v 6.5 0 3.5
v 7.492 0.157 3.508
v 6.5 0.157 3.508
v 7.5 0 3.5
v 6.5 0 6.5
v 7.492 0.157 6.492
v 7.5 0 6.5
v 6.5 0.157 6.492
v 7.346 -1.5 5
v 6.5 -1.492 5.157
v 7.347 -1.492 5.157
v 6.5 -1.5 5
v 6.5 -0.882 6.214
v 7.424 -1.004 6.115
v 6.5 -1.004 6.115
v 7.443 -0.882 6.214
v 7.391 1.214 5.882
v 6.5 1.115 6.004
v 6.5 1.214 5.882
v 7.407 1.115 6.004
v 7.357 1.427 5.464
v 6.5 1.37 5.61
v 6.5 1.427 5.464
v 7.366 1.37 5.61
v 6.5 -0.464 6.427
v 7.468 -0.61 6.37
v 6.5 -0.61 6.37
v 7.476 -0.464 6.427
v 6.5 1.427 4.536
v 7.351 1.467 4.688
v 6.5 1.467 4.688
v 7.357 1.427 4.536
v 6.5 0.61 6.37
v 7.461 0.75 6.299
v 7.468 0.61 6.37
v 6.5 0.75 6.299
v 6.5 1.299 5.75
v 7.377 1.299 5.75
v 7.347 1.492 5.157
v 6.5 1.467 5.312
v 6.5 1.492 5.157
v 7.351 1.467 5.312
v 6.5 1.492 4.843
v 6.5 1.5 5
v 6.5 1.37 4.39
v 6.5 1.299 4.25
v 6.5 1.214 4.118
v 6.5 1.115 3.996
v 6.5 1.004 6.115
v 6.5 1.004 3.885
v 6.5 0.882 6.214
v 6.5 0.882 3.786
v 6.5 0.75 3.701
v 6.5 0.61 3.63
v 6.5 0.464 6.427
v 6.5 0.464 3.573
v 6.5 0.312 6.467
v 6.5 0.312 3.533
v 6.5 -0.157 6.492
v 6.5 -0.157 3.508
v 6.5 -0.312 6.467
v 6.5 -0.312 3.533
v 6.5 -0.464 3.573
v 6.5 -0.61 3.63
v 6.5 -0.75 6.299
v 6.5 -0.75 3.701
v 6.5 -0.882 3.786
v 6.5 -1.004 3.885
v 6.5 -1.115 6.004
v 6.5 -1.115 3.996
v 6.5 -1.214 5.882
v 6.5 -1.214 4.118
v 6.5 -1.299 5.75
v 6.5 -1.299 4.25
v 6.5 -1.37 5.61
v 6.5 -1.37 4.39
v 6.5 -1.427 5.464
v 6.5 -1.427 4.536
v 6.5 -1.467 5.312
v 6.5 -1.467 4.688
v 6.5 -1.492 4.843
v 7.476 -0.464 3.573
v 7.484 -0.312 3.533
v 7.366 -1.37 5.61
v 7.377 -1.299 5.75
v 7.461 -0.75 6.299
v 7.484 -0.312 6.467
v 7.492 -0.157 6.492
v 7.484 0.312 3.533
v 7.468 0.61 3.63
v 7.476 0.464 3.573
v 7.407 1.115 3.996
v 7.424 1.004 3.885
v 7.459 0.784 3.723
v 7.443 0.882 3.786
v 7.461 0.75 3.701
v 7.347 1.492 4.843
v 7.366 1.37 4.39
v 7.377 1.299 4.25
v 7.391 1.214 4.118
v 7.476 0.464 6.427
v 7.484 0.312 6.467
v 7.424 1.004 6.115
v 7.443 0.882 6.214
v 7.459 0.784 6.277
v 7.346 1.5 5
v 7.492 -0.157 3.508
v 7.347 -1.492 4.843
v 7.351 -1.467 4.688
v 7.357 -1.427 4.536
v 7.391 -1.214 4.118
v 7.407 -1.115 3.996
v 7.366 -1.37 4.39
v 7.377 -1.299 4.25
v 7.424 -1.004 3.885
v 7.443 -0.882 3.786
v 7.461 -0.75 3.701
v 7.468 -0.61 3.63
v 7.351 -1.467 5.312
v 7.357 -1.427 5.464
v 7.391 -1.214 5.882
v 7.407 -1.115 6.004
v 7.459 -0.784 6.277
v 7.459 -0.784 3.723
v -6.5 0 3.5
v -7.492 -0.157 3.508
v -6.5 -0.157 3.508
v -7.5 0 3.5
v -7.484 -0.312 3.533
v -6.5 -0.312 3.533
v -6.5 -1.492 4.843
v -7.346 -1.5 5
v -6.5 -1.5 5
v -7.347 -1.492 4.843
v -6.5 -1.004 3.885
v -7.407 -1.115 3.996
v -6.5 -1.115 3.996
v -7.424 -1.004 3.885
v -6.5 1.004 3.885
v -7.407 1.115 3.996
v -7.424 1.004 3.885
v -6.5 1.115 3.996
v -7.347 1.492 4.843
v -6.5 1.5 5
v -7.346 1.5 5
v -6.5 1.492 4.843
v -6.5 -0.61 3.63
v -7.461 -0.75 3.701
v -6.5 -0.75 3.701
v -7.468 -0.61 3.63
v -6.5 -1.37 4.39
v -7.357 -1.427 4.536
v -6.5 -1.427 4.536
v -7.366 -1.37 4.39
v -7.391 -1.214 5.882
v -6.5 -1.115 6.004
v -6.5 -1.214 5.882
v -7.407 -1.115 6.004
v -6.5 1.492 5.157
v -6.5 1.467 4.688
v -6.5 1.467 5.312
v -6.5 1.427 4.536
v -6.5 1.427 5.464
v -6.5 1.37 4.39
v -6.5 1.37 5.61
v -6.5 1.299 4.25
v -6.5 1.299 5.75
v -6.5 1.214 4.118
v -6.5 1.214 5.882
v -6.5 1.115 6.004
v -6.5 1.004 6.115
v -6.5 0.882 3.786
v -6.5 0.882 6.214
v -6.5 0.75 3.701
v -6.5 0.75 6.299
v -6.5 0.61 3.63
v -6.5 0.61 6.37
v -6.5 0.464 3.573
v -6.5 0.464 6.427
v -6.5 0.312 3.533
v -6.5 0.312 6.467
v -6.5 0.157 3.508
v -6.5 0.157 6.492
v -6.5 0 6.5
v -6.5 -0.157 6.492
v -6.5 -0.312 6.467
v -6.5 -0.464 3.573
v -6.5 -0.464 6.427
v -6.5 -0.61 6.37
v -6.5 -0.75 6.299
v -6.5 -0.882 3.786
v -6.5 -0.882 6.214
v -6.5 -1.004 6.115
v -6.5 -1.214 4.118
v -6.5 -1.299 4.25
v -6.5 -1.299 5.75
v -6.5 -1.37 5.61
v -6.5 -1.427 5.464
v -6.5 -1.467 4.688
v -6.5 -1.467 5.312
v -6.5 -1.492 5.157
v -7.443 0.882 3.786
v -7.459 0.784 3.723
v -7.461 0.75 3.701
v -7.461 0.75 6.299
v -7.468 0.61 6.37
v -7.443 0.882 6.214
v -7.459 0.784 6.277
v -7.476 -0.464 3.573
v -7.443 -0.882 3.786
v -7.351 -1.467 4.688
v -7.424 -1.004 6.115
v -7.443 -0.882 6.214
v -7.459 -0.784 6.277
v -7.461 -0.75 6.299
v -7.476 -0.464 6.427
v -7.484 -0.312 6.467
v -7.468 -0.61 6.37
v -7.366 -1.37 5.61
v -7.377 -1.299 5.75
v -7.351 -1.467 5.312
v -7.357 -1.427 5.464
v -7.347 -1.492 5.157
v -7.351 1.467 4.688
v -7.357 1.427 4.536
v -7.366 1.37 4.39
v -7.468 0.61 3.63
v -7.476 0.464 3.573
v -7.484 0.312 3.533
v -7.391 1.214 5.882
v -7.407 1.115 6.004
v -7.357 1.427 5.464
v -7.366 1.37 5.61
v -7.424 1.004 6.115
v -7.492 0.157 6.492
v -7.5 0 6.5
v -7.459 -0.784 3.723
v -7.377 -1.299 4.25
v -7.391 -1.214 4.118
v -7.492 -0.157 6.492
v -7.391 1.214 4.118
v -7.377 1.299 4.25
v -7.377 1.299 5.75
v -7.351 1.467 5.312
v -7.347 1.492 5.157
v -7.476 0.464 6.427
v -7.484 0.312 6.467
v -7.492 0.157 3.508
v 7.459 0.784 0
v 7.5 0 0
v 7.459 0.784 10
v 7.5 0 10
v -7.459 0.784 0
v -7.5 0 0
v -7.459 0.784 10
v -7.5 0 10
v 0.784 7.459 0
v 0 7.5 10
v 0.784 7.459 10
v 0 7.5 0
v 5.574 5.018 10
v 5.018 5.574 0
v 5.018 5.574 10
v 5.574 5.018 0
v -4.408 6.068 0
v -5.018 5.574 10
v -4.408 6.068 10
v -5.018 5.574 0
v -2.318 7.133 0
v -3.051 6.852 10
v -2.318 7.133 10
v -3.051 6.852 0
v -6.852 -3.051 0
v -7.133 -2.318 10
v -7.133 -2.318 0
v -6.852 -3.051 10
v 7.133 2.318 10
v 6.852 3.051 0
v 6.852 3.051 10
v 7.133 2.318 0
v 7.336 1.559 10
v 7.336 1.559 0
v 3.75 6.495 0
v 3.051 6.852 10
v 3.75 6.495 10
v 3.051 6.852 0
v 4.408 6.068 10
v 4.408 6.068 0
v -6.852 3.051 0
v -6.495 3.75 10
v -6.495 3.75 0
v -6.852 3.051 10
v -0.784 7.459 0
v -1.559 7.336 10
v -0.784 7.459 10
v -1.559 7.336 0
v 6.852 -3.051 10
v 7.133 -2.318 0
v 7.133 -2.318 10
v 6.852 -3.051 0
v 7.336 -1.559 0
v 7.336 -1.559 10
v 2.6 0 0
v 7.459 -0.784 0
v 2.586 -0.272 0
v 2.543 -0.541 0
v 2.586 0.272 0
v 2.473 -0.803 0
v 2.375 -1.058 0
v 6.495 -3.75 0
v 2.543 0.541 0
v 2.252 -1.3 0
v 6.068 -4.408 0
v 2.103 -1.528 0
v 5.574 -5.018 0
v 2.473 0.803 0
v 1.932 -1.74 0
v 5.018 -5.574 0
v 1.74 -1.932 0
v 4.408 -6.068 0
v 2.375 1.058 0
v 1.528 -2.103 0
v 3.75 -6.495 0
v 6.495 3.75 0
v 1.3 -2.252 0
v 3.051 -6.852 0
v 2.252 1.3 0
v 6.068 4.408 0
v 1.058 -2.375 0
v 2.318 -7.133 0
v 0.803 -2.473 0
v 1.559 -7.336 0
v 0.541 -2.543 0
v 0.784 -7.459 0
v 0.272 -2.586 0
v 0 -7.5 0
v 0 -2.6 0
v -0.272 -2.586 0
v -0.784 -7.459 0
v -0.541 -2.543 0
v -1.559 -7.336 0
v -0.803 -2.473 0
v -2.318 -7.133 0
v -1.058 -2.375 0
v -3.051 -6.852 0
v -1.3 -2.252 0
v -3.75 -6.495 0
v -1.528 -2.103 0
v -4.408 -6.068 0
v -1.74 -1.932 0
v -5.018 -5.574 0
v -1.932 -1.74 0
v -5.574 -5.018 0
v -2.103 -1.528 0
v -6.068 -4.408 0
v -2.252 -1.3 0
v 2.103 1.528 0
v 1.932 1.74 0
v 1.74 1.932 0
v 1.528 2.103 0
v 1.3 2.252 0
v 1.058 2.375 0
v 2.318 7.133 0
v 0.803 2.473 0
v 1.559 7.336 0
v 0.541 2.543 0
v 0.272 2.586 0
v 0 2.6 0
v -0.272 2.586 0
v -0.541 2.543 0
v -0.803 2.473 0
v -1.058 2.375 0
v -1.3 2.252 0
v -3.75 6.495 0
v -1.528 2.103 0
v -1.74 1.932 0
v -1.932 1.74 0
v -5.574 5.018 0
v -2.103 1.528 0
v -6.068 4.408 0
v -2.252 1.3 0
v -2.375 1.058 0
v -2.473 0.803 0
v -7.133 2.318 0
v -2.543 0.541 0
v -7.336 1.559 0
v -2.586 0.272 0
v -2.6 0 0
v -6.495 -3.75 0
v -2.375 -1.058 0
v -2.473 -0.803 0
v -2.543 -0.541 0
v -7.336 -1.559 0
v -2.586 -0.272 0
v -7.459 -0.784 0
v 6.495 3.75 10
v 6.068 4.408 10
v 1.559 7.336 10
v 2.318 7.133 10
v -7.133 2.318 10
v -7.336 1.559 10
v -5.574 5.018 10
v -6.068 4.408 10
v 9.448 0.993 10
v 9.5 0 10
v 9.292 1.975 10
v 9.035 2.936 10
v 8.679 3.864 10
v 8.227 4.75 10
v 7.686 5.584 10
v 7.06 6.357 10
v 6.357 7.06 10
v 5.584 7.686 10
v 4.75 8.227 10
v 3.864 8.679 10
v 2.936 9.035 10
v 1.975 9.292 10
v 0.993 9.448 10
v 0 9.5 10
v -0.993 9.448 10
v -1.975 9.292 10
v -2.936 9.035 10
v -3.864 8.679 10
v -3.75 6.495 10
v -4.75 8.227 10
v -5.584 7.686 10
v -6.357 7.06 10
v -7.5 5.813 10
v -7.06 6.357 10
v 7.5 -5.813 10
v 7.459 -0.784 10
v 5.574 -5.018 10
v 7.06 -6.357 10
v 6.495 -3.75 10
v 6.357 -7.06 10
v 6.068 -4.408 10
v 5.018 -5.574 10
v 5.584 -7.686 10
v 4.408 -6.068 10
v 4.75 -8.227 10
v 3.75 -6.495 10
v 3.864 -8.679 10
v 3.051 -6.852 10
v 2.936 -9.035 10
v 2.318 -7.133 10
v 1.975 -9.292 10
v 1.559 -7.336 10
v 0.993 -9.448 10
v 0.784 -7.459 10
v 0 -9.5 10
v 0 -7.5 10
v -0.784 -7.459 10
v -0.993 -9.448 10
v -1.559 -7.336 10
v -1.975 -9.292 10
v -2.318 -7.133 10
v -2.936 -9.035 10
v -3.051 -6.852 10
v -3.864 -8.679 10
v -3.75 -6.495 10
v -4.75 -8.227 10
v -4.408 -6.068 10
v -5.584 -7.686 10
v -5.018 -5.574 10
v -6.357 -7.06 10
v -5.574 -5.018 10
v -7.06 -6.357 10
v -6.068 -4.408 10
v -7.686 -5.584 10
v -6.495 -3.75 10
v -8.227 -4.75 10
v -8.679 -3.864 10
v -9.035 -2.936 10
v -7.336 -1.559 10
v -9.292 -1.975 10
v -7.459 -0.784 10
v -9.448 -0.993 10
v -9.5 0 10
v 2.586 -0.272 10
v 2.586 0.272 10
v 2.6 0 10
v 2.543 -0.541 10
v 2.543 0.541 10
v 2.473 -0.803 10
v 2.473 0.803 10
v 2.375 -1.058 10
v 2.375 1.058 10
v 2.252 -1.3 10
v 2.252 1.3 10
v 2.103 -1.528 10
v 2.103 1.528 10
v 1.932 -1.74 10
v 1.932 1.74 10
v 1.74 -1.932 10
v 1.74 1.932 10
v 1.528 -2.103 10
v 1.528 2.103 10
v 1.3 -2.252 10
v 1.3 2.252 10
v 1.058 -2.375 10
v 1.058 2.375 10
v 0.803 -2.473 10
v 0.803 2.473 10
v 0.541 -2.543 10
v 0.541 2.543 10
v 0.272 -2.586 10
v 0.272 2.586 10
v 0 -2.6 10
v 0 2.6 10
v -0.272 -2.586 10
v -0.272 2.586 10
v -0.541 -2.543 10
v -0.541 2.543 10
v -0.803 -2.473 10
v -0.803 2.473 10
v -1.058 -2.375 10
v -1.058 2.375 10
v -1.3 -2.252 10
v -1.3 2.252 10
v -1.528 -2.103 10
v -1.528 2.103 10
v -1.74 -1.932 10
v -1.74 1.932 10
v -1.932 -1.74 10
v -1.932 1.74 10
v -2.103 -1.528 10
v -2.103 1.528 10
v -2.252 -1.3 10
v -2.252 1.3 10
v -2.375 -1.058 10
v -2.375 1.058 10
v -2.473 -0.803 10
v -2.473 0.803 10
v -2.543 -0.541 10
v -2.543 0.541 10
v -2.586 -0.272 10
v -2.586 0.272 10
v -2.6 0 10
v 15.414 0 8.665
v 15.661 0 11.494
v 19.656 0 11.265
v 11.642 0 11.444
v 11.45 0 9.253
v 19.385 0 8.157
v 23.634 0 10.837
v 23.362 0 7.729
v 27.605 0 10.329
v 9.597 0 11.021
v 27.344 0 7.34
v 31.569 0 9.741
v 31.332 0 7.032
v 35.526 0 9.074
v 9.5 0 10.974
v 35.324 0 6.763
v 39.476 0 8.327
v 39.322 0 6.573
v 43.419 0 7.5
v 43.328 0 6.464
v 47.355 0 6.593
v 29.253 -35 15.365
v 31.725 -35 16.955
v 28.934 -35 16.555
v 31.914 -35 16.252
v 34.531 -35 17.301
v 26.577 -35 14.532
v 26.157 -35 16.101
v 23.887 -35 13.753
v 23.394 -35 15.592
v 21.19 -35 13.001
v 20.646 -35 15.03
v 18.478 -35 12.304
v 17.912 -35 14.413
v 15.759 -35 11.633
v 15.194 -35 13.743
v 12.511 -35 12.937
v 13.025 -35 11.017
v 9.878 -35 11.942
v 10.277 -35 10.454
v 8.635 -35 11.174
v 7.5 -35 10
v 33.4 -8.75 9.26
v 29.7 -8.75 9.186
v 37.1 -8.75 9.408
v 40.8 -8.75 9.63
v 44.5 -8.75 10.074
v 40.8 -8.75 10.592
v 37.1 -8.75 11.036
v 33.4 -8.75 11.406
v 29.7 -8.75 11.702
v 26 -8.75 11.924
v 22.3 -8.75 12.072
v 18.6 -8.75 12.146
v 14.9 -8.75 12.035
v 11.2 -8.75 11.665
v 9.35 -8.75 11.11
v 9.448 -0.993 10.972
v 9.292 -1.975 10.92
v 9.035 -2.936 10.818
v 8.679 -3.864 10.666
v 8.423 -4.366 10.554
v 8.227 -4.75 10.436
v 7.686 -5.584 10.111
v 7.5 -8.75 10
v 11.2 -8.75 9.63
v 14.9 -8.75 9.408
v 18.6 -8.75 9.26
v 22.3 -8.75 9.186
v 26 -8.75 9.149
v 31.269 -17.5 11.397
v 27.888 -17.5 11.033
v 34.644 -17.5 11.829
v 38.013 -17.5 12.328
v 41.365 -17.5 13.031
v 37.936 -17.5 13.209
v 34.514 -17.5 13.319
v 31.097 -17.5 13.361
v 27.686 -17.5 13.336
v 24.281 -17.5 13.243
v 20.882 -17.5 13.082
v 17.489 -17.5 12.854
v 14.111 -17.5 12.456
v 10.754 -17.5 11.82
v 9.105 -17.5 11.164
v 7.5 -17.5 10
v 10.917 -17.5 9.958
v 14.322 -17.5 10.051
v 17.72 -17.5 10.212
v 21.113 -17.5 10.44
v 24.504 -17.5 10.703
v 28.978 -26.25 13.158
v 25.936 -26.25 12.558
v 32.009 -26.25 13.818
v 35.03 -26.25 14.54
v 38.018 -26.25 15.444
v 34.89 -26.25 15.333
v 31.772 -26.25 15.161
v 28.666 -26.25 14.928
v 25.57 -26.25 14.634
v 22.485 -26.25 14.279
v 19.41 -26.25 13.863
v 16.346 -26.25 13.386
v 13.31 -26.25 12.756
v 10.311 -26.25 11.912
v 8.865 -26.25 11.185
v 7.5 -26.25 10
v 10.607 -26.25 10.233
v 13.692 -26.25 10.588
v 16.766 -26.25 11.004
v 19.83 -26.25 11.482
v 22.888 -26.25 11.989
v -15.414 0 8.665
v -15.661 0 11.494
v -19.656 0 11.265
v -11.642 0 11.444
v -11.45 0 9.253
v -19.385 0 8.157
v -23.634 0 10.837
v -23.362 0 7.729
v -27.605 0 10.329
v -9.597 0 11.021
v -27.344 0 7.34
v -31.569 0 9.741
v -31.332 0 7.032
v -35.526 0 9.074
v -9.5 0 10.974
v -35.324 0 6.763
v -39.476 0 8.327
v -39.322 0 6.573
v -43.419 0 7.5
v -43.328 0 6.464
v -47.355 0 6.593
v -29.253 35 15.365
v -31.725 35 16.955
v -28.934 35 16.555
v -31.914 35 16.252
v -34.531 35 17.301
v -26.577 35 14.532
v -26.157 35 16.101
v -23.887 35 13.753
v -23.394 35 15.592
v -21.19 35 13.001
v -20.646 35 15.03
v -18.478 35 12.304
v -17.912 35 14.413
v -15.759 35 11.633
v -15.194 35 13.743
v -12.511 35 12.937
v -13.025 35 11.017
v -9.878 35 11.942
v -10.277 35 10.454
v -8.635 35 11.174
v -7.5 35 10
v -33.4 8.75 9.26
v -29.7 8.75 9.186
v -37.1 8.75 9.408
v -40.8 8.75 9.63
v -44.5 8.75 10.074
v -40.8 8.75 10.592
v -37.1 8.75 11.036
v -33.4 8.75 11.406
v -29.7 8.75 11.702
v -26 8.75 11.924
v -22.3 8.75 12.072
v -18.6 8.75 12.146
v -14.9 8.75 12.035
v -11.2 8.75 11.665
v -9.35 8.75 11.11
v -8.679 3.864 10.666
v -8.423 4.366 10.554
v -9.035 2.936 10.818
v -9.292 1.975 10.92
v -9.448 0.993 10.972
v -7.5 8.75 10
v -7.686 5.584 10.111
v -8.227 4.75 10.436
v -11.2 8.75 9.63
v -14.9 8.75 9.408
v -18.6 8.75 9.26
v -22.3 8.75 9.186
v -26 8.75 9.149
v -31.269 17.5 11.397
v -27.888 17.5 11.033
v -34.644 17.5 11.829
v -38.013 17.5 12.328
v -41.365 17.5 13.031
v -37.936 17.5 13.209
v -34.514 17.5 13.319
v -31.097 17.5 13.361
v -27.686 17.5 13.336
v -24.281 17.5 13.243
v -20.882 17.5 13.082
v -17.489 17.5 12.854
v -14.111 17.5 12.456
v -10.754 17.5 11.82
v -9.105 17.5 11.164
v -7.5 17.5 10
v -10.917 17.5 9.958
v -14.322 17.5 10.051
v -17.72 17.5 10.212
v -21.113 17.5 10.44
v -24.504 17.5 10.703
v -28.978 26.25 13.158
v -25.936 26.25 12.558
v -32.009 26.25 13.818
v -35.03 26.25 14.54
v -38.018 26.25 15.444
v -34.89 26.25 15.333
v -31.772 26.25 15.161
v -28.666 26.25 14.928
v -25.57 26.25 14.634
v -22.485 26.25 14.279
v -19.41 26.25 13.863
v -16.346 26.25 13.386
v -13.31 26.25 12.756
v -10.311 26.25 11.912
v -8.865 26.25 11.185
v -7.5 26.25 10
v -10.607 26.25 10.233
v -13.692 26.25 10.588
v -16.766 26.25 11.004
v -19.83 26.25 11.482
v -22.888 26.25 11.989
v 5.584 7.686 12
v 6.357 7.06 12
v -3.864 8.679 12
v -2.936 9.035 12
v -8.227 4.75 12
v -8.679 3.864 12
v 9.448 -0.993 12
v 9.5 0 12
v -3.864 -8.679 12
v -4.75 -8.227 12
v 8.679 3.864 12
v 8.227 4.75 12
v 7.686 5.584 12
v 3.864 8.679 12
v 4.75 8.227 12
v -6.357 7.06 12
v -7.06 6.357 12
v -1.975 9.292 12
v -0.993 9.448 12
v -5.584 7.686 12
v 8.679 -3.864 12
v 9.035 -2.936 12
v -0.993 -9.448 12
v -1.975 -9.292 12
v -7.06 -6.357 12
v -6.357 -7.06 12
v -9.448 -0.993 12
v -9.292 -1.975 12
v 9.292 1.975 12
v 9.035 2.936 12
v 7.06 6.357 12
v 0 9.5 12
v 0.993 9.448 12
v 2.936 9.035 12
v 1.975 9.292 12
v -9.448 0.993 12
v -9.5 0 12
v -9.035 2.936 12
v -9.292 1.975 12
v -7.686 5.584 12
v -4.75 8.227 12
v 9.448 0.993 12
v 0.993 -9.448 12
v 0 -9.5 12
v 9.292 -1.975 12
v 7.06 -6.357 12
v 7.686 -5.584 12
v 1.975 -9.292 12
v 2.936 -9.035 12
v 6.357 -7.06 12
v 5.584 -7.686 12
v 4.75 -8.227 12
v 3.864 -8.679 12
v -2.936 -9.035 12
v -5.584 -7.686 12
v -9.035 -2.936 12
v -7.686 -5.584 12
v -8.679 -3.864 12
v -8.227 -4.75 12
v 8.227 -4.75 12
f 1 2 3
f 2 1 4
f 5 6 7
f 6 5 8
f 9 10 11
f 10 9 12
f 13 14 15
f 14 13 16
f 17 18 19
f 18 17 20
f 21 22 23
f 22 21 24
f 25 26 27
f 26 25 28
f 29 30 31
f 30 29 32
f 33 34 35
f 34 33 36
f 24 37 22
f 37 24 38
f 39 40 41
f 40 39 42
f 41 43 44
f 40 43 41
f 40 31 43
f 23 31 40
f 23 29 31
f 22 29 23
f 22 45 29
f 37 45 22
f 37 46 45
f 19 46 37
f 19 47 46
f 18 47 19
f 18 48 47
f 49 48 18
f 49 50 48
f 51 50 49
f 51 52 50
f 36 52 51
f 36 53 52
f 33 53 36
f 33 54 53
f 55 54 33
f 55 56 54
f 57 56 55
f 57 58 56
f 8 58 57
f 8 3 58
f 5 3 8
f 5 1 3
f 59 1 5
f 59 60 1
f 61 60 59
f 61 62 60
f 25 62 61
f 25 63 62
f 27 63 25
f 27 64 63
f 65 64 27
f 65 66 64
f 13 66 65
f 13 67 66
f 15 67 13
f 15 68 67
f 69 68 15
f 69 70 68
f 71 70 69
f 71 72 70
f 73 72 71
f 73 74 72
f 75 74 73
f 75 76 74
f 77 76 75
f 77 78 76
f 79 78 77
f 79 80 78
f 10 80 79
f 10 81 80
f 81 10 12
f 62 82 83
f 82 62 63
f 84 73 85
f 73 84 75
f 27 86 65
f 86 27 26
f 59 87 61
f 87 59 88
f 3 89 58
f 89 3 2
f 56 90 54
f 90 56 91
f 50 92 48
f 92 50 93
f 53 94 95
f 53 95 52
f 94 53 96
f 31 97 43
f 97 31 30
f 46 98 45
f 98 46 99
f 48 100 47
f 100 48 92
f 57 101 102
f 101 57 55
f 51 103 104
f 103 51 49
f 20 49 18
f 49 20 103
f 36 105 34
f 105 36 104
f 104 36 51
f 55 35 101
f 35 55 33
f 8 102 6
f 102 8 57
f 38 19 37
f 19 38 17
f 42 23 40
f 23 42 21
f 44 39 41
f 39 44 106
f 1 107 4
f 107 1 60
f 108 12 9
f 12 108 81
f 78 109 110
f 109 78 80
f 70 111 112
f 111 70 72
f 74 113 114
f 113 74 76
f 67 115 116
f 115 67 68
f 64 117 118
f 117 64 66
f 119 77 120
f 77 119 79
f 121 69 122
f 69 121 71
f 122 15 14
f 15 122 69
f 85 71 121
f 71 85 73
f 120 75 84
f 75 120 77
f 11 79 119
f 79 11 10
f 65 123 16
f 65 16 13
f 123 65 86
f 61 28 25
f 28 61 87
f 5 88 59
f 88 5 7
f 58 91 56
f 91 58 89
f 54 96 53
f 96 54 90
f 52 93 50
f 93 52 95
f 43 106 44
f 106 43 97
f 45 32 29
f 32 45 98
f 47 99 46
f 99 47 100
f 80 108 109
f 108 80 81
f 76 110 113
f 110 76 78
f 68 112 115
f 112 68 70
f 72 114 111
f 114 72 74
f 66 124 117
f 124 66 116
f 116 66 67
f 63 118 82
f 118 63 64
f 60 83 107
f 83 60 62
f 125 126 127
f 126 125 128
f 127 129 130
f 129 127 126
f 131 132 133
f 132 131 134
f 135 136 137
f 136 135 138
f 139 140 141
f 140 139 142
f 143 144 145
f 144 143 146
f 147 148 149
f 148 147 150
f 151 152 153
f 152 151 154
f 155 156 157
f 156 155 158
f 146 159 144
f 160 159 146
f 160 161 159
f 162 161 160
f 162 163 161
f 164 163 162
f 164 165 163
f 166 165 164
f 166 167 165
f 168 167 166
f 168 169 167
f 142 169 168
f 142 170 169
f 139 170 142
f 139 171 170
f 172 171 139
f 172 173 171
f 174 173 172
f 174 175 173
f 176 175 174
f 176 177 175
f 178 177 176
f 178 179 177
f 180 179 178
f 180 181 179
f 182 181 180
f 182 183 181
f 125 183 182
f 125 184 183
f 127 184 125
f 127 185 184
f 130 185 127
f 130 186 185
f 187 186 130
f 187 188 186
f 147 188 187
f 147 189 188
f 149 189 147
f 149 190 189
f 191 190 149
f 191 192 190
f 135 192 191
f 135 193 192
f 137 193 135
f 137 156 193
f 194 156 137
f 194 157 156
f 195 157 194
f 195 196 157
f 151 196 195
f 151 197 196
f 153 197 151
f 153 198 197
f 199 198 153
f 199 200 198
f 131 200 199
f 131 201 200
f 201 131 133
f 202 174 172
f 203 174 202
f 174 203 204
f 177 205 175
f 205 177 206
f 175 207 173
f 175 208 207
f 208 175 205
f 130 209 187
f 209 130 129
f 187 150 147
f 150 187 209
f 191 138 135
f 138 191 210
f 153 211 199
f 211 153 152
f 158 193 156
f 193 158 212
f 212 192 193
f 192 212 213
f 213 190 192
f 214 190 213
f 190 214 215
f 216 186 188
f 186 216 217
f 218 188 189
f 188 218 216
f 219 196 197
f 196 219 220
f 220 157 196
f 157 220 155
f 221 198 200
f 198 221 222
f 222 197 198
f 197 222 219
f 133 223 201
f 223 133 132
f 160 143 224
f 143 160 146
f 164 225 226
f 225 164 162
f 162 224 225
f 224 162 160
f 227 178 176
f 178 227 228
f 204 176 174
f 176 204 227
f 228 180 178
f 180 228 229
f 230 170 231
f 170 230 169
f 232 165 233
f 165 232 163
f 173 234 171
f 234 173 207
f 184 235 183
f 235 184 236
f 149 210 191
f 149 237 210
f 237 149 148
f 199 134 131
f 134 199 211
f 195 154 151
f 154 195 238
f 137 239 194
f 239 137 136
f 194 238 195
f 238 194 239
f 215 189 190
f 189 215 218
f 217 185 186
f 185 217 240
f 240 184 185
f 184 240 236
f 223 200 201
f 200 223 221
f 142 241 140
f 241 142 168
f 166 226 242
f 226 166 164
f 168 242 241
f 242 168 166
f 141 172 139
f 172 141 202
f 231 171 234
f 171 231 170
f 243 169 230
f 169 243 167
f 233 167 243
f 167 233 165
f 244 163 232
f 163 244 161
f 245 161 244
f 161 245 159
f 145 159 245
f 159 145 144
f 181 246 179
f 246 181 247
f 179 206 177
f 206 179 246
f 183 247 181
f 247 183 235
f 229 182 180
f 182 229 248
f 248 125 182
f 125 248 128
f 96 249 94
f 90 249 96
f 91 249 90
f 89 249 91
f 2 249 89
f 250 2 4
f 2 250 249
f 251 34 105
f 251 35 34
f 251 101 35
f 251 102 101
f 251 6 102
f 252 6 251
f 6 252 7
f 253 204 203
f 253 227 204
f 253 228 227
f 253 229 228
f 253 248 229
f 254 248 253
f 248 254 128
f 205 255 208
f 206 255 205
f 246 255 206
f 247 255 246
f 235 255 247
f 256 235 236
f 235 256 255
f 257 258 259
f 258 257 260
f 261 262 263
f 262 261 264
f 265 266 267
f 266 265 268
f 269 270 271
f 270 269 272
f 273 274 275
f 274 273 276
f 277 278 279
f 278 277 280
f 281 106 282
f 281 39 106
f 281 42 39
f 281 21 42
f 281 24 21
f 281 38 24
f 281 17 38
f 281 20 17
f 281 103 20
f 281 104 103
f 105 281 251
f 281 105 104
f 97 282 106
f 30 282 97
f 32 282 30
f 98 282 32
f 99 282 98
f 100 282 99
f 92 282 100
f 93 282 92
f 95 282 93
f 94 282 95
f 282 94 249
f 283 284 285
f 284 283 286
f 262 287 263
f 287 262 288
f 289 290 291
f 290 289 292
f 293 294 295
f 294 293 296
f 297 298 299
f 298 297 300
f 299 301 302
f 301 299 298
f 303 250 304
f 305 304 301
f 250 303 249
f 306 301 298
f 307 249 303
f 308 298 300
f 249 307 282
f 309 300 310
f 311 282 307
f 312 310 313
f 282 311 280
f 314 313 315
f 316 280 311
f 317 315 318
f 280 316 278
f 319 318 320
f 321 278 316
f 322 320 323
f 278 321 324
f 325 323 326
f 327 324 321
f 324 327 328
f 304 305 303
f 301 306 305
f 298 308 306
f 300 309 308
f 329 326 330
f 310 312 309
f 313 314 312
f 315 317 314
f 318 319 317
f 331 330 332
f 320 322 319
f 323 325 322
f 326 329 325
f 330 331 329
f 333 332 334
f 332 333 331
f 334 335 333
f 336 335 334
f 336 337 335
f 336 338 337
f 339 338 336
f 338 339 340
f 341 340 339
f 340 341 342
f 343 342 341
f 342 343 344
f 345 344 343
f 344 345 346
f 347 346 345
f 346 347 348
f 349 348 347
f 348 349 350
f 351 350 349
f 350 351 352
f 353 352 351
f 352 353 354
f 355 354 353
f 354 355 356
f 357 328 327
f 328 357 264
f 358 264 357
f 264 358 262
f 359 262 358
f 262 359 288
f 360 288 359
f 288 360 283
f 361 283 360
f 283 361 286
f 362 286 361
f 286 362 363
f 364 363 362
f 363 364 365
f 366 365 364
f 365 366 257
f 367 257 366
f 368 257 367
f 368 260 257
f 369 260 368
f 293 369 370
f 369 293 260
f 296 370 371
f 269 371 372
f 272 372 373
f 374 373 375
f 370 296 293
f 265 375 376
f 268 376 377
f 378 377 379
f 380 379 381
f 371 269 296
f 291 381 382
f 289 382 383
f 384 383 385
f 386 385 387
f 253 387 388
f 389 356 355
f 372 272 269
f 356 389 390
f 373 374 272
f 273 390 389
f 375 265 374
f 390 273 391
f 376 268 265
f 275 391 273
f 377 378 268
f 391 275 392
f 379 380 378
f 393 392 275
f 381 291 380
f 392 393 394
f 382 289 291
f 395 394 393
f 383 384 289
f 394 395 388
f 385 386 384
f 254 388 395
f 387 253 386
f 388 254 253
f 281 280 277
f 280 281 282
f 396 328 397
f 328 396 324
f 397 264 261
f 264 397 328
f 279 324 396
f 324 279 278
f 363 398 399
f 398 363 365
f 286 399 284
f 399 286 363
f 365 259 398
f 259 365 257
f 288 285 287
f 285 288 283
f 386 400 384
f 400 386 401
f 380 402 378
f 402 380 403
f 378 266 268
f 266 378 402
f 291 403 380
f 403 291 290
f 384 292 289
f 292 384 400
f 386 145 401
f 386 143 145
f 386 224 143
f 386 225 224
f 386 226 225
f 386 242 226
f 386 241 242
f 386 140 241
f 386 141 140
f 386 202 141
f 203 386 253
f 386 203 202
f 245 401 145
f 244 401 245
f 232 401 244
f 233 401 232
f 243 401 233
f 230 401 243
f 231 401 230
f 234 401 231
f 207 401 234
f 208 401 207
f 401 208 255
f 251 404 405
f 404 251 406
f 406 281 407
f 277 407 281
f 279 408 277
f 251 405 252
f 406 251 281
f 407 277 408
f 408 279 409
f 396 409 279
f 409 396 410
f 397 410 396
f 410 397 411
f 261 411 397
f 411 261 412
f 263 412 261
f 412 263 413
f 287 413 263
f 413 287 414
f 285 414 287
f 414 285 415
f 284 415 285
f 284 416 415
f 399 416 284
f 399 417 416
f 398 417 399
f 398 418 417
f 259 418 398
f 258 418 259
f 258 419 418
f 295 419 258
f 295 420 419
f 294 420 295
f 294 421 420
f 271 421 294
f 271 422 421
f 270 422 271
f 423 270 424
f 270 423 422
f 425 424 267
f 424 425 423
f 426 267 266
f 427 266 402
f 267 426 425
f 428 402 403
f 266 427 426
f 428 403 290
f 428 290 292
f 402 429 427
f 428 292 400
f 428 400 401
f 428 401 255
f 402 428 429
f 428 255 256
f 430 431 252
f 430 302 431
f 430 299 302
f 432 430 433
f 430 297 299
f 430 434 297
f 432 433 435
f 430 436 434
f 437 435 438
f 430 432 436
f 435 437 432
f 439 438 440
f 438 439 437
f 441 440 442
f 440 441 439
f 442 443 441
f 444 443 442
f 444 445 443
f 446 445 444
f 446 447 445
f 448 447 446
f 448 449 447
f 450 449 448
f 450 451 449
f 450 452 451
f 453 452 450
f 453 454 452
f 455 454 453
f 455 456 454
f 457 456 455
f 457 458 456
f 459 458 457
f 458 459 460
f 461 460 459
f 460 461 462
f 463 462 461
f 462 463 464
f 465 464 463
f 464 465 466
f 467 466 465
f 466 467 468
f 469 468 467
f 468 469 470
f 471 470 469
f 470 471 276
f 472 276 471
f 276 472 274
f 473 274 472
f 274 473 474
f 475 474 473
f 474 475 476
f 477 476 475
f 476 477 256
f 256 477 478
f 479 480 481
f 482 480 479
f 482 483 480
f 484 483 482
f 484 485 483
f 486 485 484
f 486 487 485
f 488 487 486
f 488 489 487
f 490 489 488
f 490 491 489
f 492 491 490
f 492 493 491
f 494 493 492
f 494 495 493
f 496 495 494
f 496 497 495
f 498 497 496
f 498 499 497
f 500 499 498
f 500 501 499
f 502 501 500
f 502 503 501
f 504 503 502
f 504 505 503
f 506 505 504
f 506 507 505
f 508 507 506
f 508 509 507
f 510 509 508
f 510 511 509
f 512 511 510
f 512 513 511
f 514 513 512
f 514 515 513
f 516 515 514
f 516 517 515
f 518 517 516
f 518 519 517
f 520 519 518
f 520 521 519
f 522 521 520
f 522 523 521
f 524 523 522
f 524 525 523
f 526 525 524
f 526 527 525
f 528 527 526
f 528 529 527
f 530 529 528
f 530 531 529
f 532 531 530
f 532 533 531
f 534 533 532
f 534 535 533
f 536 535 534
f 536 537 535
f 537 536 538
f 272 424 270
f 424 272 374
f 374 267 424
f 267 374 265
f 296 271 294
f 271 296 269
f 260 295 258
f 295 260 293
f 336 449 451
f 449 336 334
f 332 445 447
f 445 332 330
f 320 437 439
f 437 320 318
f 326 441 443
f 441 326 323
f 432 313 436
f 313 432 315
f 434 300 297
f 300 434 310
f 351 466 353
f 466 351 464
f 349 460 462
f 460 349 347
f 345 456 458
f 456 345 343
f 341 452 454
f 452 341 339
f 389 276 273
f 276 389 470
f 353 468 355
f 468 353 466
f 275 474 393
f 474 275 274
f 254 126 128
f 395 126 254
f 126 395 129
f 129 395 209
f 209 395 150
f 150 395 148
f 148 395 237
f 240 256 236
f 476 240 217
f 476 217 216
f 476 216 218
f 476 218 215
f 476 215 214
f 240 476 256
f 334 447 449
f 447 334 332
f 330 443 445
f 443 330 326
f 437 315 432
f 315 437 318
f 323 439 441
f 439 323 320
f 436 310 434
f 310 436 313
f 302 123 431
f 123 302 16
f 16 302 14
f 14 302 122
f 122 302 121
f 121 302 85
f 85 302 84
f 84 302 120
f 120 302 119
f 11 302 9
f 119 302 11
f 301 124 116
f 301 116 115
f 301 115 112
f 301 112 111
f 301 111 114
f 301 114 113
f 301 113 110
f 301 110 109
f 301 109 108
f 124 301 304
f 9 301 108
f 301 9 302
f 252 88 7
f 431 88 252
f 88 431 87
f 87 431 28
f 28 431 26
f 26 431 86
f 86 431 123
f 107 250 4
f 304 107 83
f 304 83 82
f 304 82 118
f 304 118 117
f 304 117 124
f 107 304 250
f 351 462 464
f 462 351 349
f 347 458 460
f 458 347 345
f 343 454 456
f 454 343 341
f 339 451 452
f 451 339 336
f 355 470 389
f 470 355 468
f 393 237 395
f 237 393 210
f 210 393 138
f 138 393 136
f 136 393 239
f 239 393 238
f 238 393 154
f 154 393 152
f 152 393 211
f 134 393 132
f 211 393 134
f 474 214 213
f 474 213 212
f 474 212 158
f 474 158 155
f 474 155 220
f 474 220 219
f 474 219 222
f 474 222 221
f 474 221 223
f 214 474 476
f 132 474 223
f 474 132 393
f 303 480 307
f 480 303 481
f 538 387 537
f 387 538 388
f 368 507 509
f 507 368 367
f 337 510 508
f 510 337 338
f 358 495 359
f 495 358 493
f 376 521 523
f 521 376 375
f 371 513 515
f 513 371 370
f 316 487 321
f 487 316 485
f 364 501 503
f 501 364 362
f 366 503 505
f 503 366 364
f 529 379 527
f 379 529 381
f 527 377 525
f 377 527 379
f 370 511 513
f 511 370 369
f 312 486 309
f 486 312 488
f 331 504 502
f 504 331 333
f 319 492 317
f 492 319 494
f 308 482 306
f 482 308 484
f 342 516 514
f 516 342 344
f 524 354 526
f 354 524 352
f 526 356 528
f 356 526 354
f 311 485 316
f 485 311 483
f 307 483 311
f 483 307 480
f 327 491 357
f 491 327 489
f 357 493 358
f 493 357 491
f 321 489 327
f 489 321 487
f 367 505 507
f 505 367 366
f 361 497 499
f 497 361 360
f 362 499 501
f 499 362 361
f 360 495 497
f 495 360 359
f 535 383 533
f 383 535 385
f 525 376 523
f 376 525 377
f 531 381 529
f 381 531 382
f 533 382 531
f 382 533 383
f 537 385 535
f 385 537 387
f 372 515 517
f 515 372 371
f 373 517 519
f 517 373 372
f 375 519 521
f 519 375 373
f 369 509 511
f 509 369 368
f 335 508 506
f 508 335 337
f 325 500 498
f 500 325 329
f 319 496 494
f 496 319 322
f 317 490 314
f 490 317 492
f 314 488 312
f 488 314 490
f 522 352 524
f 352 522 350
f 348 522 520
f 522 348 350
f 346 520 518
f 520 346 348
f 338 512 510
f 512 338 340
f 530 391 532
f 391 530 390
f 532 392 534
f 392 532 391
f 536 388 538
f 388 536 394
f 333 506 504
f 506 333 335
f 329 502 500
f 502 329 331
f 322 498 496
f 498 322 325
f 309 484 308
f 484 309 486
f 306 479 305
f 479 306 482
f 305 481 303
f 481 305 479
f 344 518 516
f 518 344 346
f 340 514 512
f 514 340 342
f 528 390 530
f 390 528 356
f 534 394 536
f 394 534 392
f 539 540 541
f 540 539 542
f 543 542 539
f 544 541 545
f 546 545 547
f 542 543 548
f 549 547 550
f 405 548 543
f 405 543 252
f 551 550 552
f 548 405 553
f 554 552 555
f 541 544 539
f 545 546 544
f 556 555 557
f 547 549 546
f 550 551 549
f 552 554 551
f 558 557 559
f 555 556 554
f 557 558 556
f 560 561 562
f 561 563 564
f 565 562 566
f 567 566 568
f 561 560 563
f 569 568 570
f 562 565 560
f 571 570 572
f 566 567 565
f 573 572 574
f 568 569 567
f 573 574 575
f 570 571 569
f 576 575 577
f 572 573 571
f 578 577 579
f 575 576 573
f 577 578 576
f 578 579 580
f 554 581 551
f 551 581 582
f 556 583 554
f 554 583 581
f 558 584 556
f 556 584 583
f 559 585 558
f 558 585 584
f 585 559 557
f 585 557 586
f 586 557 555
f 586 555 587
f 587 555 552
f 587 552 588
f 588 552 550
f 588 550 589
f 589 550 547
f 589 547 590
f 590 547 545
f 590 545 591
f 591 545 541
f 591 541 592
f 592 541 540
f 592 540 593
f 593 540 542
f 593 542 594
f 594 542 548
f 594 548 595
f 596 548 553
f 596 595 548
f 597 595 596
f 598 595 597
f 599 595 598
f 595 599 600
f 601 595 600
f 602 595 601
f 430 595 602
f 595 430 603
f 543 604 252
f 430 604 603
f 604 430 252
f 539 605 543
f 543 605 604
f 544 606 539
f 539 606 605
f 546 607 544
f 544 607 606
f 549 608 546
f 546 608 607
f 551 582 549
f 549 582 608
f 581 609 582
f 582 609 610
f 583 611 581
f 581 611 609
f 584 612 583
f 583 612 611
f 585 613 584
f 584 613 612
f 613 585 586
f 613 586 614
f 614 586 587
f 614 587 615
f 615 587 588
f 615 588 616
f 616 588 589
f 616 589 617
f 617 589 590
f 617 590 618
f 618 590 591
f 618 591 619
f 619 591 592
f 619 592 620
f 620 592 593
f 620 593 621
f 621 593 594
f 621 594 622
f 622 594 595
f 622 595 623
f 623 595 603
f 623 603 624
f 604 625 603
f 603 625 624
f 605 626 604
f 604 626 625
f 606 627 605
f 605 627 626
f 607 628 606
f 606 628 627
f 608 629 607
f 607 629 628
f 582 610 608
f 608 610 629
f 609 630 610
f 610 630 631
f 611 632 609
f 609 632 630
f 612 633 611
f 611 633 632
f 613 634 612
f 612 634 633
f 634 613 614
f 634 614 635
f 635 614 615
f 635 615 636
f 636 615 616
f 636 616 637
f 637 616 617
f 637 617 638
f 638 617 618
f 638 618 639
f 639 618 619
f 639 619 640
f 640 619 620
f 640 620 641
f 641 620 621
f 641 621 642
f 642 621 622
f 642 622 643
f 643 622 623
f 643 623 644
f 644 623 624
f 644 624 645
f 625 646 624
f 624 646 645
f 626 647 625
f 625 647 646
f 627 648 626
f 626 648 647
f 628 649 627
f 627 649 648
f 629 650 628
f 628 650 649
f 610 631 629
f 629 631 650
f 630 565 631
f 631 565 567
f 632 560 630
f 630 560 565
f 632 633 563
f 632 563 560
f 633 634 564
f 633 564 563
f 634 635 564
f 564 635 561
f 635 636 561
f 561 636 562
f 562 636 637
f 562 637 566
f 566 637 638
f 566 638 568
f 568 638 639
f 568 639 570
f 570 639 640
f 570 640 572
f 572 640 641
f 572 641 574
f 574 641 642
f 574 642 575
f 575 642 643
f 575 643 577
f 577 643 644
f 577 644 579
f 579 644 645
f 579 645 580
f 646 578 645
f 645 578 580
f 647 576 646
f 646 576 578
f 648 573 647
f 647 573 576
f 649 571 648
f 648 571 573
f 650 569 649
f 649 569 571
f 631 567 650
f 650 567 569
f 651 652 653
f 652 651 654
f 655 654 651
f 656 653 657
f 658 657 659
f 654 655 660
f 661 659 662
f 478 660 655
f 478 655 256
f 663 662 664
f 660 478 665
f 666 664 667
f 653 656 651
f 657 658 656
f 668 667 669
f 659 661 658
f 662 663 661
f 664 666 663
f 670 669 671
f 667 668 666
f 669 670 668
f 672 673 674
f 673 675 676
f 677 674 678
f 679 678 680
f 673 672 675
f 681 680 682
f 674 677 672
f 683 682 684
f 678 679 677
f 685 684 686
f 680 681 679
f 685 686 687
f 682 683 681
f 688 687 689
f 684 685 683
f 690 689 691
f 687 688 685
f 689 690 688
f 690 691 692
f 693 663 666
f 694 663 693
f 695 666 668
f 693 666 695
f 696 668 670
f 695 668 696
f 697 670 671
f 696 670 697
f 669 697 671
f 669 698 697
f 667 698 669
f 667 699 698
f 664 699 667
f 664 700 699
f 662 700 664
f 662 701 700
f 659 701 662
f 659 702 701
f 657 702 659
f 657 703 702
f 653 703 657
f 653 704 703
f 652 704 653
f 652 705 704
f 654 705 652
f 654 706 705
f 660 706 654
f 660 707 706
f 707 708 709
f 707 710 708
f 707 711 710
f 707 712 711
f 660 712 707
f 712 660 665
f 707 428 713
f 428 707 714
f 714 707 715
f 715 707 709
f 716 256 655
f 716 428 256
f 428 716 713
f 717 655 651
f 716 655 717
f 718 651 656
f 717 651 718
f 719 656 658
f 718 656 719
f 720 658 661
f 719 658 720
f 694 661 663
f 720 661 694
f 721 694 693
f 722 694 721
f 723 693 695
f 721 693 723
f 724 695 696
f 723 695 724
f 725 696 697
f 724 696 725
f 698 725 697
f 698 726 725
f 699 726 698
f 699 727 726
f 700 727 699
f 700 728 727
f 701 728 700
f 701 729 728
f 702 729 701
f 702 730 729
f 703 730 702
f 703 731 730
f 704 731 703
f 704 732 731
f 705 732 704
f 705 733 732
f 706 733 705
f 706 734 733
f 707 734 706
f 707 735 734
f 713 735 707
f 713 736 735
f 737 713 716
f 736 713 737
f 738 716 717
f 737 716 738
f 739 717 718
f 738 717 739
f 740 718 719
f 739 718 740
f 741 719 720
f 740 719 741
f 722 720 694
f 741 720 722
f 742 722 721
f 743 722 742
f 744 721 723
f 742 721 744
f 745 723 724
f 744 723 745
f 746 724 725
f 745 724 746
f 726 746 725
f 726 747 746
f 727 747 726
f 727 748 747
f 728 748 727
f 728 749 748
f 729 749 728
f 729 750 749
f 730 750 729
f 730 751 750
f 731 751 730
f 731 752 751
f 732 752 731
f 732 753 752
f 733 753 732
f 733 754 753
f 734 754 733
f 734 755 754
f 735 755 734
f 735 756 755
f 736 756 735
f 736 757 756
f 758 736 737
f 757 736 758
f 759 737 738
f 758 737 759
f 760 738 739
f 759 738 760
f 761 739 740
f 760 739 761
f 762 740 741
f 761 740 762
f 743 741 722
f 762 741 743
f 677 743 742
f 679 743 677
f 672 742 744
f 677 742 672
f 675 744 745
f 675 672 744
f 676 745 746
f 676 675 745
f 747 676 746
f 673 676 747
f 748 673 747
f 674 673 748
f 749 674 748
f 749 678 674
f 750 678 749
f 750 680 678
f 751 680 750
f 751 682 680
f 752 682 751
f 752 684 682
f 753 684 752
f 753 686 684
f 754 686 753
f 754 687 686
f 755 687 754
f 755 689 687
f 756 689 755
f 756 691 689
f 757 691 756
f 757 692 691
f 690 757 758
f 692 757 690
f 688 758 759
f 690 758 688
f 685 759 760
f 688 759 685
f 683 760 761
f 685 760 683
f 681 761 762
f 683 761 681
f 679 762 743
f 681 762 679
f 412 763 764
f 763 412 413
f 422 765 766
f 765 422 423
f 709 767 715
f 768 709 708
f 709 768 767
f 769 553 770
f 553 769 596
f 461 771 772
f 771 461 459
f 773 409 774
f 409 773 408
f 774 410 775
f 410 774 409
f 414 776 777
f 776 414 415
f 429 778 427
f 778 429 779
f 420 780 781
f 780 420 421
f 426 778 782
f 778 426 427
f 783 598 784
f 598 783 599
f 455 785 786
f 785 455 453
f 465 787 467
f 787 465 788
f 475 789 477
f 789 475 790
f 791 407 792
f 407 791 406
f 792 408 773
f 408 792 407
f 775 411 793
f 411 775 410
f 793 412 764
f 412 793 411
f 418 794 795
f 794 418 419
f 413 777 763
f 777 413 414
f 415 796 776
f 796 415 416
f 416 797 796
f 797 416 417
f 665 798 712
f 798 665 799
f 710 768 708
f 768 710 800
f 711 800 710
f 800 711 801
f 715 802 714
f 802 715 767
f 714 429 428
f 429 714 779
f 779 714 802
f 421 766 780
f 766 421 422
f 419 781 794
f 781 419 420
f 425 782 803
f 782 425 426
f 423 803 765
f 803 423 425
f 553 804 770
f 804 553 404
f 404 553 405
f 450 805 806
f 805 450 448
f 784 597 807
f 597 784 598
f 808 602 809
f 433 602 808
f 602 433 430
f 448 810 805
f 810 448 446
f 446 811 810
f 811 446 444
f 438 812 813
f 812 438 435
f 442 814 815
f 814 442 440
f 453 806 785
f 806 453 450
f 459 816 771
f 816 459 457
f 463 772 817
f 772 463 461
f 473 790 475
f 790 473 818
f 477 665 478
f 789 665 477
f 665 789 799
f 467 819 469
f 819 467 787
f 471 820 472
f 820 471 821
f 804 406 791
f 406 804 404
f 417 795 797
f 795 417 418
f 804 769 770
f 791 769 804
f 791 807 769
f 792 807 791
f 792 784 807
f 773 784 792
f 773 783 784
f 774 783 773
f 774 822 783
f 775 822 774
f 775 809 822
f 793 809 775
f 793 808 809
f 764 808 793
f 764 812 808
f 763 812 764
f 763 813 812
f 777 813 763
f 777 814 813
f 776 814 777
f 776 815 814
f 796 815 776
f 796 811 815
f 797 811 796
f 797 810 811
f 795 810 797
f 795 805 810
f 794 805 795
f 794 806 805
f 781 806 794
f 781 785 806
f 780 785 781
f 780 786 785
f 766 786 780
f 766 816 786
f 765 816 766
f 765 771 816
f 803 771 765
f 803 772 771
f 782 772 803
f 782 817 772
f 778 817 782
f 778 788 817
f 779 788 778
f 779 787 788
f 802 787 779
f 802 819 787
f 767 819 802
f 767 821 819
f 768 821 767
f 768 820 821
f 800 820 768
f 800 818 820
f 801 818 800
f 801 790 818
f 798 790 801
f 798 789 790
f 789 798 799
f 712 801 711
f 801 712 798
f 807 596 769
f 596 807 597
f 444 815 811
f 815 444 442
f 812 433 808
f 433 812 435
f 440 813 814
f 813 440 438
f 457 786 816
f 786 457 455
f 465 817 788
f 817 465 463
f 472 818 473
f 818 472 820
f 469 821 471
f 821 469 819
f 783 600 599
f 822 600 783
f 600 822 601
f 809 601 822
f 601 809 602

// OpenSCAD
/*
 * COMPLETE MOTOR + IMPELLER ASSEMBLY
 * For CFD fluid testing and visualization
 * 
 * This model includes:
 *   - Brushless motor (2204-2206 size)
 *   - Motor shaft (5mm)
 *   - Impeller hub
 *   - 3 impeller variants (bladeless, AI-blades, hybrid)
 *   - Mounting plate
 * 
 * Usage:
 *   - Render full assembly: F6
 *   - Export for CFD: Set EXPORT_MODE = "impeller_only"
 *   - Change design: Set IMPELLER_TYPE = "bladeless" | "bladed" | "hybrid"
 */

// ============================================================================
// CONFIGURATION PARAMETERS (AI-Optimizable)
// ============================================================================

// General Settings
$fn = 60;  // Resolution for CFD export (increase to 100 for final)

// Export Mode
EXPORT_MODE = "impeller_only";  // Options: "full_assembly", "impeller_only", "motor_only"

// Impeller Type
IMPELLER_TYPE = "bladed";  // Options: "bladeless", "bladed", "hybrid"

// Motor Specifications (2204-2206 brushless)
MOTOR_DIAMETER = 28;         // mm
MOTOR_HEIGHT = 25;           // mm
MOTOR_SHAFT_DIAMETER = 5;    // mm (standard)
MOTOR_SHAFT_LENGTH = 15;     // mm (extends above motor)
MOTOR_MOUNT_PATTERN = 16;    // mm (16x16 or 19x19 common)
MOTOR_SCREW_DIAMETER = 3;    // M3 screws

// Impeller Parameters - BLADELESS
BLADELESS_OUTER_DIAMETER = 90;    // mm
BLADELESS_AIR_GAP = 0.8;          // mm (optimize: 0.6-1.2)
BLADELESS_THROAT_RATIO = 0.72;    // (optimize: 0.65-0.80)
BLADELESS_EXPANSION_ANGLE = 18;   // degrees (optimize: 12-25)
BLADELESS_RING_THICKNESS = 3;     // mm (optimize: 2-4)
BLADELESS_HEIGHT = 24;            // mm

// Impeller Parameters - BLADED
BLADED_DIAMETER = 85;
BLADED_HUB_DIAMETER = 15;         // mm (optimize: 12-20)
BLADED_BLADE_COUNT = 2;
BLADED_ROOT_CHORD = 40;
BLADED_TIP_CHORD_RATIO = 0.7;    // (optimize: 0.6-0.8)
BLADED_BLADE_THICKNESS = 2;       // mm (optimize: 1.5-3)
BLADED_BLADE_TWIST = -20;
BLADED_ATTACK_ANGLE = -5;
BLADED_BLADE_HEIGHT = 12;         // mm (optimize: 10-15)

// Hub Parameters
HUB_DIAMETER = 15;
HUB_HEIGHT = 10;
HUB_SET_SCREW_DIAMETER = 3;  // M3 set screw

// Mounting Plate
PLATE_SIZE = 50;
PLATE_THICKNESS = 3;

// ============================================================================
// MOTOR MODEL
// ============================================================================

module brushless_motor_2204() {
    color("DarkSlateGray") {
        // Motor can (bell)
        difference() {
            cylinder(h=MOTOR_HEIGHT, d=MOTOR_DIAMETER);
            
            // Hollow inside (weight reduction visualization)
            translate([0, 0, -0.5])
                cylinder(h=MOTOR_HEIGHT - 5, d=MOTOR_DIAMETER - 4);
            
            // Mounting holes
            for(i = [0:3]) {
                rotate([0, 0, i * 90])
                    translate([MOTOR_MOUNT_PATTERN/2, 0, MOTOR_HEIGHT/2])
                        rotate([90, 0, 0])
                            cylinder(h=MOTOR_DIAMETER, d=MOTOR_SCREW_DIAMETER, center=true);
            }
        }
        
        // Motor base
        translate([0, 0, -3])
            cylinder(h=3, d=MOTOR_DIAMETER - 2);
    }
    
    // Motor shaft
    color("Silver")
        translate([0, 0, MOTOR_HEIGHT])
            cylinder(h=MOTOR_SHAFT_LENGTH, d=MOTOR_SHAFT_DIAMETER);
    
    // Shaft tip (for hub attachment)
    color("Silver")
        translate([0, 0, MOTOR_HEIGHT + MOTOR_SHAFT_LENGTH])
            cylinder(h=2, d=MOTOR_SHAFT_DIAMETER - 0.5);
}

// ============================================================================
// IMPELLER HUB
// ============================================================================

module impeller_hub() {
    color("Gray")
    difference() {
        // Hub body
        cylinder(h=HUB_HEIGHT, d=HUB_DIAMETER);
        
        // Shaft hole (5mm + 0.2mm clearance)
        translate([0, 0, -0.5])
            cylinder(h=HUB_HEIGHT + 1, d=MOTOR_SHAFT_DIAMETER + 0.2);
        
        // Set screw holes (2x for balance)
        for(i = [0:1]) {
            rotate([0, 0, i * 180])
                translate([HUB_DIAMETER/2 - 1, 0, HUB_HEIGHT/2])
                    rotate([0, 90, 0])
                        cylinder(h=5, d=HUB_SET_SCREW_DIAMETER);
        }
    }
}

// ============================================================================
// BLADELESS IMPELLER (Dyson-style)
// ============================================================================

module bladeless_impeller() {
    outer_r = BLADELESS_OUTER_DIAMETER / 2;
    throat_r = outer_r * BLADELESS_THROAT_RATIO;
    gap = BLADELESS_AIR_GAP;
    
    color("SkyBlue", 0.7)
    difference() {
        // Outer ring
        rotate_extrude()
            translate([outer_r - BLADELESS_RING_THICKNESS/2, BLADELESS_HEIGHT/2, 0])
                circle(d=BLADELESS_RING_THICKNESS + BLADELESS_HEIGHT);
        
        // Inner air gap (critical for Coanda effect)
        rotate_extrude()
            translate([outer_r - gap - BLADELESS_RING_THICKNESS/2, BLADELESS_HEIGHT/2, 0])
                circle(d=BLADELESS_RING_THICKNESS + BLADELESS_HEIGHT - 2*gap);
    }
    
    // Base plate (connects to hub)
    color("SkyBlue", 0.7)
    translate([0, 0, -2])
        difference() {
            cylinder(h=2, d=outer_r * 2);
            translate([0, 0, -0.5])
                cylinder(h=3, d=HUB_DIAMETER + 1);
        }
    
    // Air inlet (bell-shaped for smooth flow)
    color("SkyBlue", 0.7)
    translate([0, 0, -2]) {
        difference() {
            cylinder(h=15, d1=throat_r * 2, d2=outer_r * 1.8);
            translate([0, 0, -0.5])
                cylinder(h=16, d1=throat_r * 2 - 3, d2=outer_r * 1.8 - 3);
        }
    }
}

// ============================================================================
// AI-OPTIMIZED BLADED IMPELLER (NACA 2412 profile)
// ============================================================================

module naca_2412_blade(chord, height, twist_angle, attack_angle) {
    // Simplified NACA 2412 airfoil profile
    // Using parametric approximation for 3D printing
    
    color("LightSteelBlue", 0.8)
    linear_extrude(height=height, twist=twist_angle, scale=BLADED_TIP_CHORD_RATIO) {
        rotate([0, 0, attack_angle])
        polygon([
            // Upper surface (cambered)
            [0, 0],
            [chord * 0.05, chord * 0.03],
            [chord * 0.1, chord * 0.045],
            [chord * 0.2, chord * 0.055],
            [chord * 0.3, chord * 0.058],
            [chord * 0.4, chord * 0.056],
            [chord * 0.5, chord * 0.052],
            [chord * 0.6, chord * 0.046],
            [chord * 0.7, chord * 0.038],
            [chord * 0.8, chord * 0.028],
            [chord * 0.9, chord * 0.016],
            [chord * 1.0, chord * 0.002],
            // Lower surface (less cambered)
            [chord * 0.9, -chord * 0.010],
            [chord * 0.8, -chord * 0.016],
            [chord * 0.7, -chord * 0.020],
            [chord * 0.6, -chord * 0.022],
            [chord * 0.5, -chord * 0.023],
            [chord * 0.4, -chord * 0.022],
            [chord * 0.3, -chord * 0.020],
            [chord * 0.2, -chord * 0.016],
            [chord * 0.1, -chord * 0.010],
            [chord * 0.05, -chord * 0.005],
        ]);
    }
}

module bladed_impeller() {
    // Blades
    for(i = [0 : BLADED_BLADE_COUNT - 1]) {
        rotate([0, 0, i * (360 / BLADED_BLADE_COUNT)])
            translate([BLADED_HUB_DIAMETER/2, 0, 0])
                rotate([90, 0, 0])
                    naca_2412_blade(
                        BLADED_ROOT_CHORD, 
                        (BLADED_DIAMETER - BLADED_HUB_DIAMETER) / 2,
                        BLADED_BLADE_TWIST,
                        BLADED_ATTACK_ANGLE
                    );
    }
    
    // Hub disk (connects blades)
    color("LightSteelBlue", 0.8)
    cylinder(h=2, d=BLADED_HUB_DIAMETER + 4);
}

// ============================================================================
// HYBRID IMPELLER (Blades inside bladeless ring)
// ============================================================================

module hybrid_impeller() {
    // Outer bladeless ring
    bladeless_impeller();
    
    // Inner bladed impeller (scaled down to fit)
    scale([0.85, 0.85, 1])
        bladed_impeller();
}

// ============================================================================
// MOUNTING PLATE
// ============================================================================

module mounting_plate() {
    color("DimGray")
    difference() {
        // Base plate
        translate([-PLATE_SIZE/2, -PLATE_SIZE/2, 0])
            cube([PLATE_SIZE, PLATE_SIZE, PLATE_THICKNESS]);
        
        // Center hole for motor shaft
        translate([0, 0, -0.5])
            cylinder(h=PLATE_THICKNESS + 1, d=MOTOR_DIAMETER + 2);
        
        // Motor mounting holes
        for(i = [0:3]) {
            rotate([0, 0, i * 90])
                translate([MOTOR_MOUNT_PATTERN/2, 0, -0.5])
                    cylinder(h=PLATE_THICKNESS + 1, d=MOTOR_SCREW_DIAMETER);
        }
    }
}

// ============================================================================
// COMPLETE ASSEMBLY
// ============================================================================

module complete_assembly() {
    // Mounting plate (bottom)
    translate([0, 0, -PLATE_THICKNESS])
        mounting_plate();
    
    // Motor
    translate([0, 0, 0])
        brushless_motor_2204();
    
    // Hub (on shaft)
    translate([0, 0, MOTOR_HEIGHT + MOTOR_SHAFT_LENGTH - 2])
        impeller_hub();
    
    // Impeller (on hub)
    translate([0, 0, MOTOR_HEIGHT + MOTOR_SHAFT_LENGTH + HUB_HEIGHT]) {
        if (IMPELLER_TYPE == "bladeless") {
            bladeless_impeller();
        } else if (IMPELLER_TYPE == "bladed") {
            bladed_impeller();
        } else if (IMPELLER_TYPE == "hybrid") {
            hybrid_impeller();
        }
    }
}

// ============================================================================
// RENDER BASED ON EXPORT MODE
// ============================================================================

if (EXPORT_MODE == "full_assembly") {
    complete_assembly();
} 
else if (EXPORT_MODE == "impeller_only") {
    // For CFD testing - impeller + hub only
    impeller_hub();
    translate([0, 0, HUB_HEIGHT]) {
        if (IMPELLER_TYPE == "bladeless") {
            bladeless_impeller();
        } else if (IMPELLER_TYPE == "bladed") {
            bladed_impeller();
        } else if (IMPELLER_TYPE == "hybrid") {
            hybrid_impeller();
        }
    }
}
else if (EXPORT_MODE == "motor_only") {
    brushless_motor_2204();
}

// ============================================================================
// ANNOTATIONS FOR VISUALIZATION
// ============================================================================

// Uncomment to show dimensions
/*
color("Red", 0.3)
translate([BLADED_DIAMETER/2 + 10, 0, 20])
    text(str("Ø", BLADED_DIAMETER, "mm"), size=5, halign="left");

color("Green", 0.3)
translate([0, BLADED_DIAMETER/2 + 10, 20])
    text(str(BLADED_BLADE_COUNT, " blades"), size=5, halign="center");
*/

// ============================================================================
// EXPORT NOTES
// ============================================================================

/*
 * TO EXPORT FOR CFD TESTING:
 * 
 * 1. Set EXPORT_MODE = "impeller_only"
 * 2. Set IMPELLER_TYPE = "bladeless" (or "bladed" or "hybrid")
 * 3. Press F6 to render
 * 4. File → Export → Export as STL
 * 5. Use filename: impeller_bladeless_fn60.stl
 * 
 * FOR OPTIMIZATION:
 * - Modify parameters at top (marked with "optimize:")
 * - Re-render and export
 * - Upload to SimScale for CFD
 * - Compare results
 * 
 * RECOMMENDED CFD SETTINGS:
 * - Solver: k-omega SST
 * - RPM: 5000, 7000, 9000
 * - Mesh: 3-5M cells
 * - Boundary: Rotating zone on impeller
 */
